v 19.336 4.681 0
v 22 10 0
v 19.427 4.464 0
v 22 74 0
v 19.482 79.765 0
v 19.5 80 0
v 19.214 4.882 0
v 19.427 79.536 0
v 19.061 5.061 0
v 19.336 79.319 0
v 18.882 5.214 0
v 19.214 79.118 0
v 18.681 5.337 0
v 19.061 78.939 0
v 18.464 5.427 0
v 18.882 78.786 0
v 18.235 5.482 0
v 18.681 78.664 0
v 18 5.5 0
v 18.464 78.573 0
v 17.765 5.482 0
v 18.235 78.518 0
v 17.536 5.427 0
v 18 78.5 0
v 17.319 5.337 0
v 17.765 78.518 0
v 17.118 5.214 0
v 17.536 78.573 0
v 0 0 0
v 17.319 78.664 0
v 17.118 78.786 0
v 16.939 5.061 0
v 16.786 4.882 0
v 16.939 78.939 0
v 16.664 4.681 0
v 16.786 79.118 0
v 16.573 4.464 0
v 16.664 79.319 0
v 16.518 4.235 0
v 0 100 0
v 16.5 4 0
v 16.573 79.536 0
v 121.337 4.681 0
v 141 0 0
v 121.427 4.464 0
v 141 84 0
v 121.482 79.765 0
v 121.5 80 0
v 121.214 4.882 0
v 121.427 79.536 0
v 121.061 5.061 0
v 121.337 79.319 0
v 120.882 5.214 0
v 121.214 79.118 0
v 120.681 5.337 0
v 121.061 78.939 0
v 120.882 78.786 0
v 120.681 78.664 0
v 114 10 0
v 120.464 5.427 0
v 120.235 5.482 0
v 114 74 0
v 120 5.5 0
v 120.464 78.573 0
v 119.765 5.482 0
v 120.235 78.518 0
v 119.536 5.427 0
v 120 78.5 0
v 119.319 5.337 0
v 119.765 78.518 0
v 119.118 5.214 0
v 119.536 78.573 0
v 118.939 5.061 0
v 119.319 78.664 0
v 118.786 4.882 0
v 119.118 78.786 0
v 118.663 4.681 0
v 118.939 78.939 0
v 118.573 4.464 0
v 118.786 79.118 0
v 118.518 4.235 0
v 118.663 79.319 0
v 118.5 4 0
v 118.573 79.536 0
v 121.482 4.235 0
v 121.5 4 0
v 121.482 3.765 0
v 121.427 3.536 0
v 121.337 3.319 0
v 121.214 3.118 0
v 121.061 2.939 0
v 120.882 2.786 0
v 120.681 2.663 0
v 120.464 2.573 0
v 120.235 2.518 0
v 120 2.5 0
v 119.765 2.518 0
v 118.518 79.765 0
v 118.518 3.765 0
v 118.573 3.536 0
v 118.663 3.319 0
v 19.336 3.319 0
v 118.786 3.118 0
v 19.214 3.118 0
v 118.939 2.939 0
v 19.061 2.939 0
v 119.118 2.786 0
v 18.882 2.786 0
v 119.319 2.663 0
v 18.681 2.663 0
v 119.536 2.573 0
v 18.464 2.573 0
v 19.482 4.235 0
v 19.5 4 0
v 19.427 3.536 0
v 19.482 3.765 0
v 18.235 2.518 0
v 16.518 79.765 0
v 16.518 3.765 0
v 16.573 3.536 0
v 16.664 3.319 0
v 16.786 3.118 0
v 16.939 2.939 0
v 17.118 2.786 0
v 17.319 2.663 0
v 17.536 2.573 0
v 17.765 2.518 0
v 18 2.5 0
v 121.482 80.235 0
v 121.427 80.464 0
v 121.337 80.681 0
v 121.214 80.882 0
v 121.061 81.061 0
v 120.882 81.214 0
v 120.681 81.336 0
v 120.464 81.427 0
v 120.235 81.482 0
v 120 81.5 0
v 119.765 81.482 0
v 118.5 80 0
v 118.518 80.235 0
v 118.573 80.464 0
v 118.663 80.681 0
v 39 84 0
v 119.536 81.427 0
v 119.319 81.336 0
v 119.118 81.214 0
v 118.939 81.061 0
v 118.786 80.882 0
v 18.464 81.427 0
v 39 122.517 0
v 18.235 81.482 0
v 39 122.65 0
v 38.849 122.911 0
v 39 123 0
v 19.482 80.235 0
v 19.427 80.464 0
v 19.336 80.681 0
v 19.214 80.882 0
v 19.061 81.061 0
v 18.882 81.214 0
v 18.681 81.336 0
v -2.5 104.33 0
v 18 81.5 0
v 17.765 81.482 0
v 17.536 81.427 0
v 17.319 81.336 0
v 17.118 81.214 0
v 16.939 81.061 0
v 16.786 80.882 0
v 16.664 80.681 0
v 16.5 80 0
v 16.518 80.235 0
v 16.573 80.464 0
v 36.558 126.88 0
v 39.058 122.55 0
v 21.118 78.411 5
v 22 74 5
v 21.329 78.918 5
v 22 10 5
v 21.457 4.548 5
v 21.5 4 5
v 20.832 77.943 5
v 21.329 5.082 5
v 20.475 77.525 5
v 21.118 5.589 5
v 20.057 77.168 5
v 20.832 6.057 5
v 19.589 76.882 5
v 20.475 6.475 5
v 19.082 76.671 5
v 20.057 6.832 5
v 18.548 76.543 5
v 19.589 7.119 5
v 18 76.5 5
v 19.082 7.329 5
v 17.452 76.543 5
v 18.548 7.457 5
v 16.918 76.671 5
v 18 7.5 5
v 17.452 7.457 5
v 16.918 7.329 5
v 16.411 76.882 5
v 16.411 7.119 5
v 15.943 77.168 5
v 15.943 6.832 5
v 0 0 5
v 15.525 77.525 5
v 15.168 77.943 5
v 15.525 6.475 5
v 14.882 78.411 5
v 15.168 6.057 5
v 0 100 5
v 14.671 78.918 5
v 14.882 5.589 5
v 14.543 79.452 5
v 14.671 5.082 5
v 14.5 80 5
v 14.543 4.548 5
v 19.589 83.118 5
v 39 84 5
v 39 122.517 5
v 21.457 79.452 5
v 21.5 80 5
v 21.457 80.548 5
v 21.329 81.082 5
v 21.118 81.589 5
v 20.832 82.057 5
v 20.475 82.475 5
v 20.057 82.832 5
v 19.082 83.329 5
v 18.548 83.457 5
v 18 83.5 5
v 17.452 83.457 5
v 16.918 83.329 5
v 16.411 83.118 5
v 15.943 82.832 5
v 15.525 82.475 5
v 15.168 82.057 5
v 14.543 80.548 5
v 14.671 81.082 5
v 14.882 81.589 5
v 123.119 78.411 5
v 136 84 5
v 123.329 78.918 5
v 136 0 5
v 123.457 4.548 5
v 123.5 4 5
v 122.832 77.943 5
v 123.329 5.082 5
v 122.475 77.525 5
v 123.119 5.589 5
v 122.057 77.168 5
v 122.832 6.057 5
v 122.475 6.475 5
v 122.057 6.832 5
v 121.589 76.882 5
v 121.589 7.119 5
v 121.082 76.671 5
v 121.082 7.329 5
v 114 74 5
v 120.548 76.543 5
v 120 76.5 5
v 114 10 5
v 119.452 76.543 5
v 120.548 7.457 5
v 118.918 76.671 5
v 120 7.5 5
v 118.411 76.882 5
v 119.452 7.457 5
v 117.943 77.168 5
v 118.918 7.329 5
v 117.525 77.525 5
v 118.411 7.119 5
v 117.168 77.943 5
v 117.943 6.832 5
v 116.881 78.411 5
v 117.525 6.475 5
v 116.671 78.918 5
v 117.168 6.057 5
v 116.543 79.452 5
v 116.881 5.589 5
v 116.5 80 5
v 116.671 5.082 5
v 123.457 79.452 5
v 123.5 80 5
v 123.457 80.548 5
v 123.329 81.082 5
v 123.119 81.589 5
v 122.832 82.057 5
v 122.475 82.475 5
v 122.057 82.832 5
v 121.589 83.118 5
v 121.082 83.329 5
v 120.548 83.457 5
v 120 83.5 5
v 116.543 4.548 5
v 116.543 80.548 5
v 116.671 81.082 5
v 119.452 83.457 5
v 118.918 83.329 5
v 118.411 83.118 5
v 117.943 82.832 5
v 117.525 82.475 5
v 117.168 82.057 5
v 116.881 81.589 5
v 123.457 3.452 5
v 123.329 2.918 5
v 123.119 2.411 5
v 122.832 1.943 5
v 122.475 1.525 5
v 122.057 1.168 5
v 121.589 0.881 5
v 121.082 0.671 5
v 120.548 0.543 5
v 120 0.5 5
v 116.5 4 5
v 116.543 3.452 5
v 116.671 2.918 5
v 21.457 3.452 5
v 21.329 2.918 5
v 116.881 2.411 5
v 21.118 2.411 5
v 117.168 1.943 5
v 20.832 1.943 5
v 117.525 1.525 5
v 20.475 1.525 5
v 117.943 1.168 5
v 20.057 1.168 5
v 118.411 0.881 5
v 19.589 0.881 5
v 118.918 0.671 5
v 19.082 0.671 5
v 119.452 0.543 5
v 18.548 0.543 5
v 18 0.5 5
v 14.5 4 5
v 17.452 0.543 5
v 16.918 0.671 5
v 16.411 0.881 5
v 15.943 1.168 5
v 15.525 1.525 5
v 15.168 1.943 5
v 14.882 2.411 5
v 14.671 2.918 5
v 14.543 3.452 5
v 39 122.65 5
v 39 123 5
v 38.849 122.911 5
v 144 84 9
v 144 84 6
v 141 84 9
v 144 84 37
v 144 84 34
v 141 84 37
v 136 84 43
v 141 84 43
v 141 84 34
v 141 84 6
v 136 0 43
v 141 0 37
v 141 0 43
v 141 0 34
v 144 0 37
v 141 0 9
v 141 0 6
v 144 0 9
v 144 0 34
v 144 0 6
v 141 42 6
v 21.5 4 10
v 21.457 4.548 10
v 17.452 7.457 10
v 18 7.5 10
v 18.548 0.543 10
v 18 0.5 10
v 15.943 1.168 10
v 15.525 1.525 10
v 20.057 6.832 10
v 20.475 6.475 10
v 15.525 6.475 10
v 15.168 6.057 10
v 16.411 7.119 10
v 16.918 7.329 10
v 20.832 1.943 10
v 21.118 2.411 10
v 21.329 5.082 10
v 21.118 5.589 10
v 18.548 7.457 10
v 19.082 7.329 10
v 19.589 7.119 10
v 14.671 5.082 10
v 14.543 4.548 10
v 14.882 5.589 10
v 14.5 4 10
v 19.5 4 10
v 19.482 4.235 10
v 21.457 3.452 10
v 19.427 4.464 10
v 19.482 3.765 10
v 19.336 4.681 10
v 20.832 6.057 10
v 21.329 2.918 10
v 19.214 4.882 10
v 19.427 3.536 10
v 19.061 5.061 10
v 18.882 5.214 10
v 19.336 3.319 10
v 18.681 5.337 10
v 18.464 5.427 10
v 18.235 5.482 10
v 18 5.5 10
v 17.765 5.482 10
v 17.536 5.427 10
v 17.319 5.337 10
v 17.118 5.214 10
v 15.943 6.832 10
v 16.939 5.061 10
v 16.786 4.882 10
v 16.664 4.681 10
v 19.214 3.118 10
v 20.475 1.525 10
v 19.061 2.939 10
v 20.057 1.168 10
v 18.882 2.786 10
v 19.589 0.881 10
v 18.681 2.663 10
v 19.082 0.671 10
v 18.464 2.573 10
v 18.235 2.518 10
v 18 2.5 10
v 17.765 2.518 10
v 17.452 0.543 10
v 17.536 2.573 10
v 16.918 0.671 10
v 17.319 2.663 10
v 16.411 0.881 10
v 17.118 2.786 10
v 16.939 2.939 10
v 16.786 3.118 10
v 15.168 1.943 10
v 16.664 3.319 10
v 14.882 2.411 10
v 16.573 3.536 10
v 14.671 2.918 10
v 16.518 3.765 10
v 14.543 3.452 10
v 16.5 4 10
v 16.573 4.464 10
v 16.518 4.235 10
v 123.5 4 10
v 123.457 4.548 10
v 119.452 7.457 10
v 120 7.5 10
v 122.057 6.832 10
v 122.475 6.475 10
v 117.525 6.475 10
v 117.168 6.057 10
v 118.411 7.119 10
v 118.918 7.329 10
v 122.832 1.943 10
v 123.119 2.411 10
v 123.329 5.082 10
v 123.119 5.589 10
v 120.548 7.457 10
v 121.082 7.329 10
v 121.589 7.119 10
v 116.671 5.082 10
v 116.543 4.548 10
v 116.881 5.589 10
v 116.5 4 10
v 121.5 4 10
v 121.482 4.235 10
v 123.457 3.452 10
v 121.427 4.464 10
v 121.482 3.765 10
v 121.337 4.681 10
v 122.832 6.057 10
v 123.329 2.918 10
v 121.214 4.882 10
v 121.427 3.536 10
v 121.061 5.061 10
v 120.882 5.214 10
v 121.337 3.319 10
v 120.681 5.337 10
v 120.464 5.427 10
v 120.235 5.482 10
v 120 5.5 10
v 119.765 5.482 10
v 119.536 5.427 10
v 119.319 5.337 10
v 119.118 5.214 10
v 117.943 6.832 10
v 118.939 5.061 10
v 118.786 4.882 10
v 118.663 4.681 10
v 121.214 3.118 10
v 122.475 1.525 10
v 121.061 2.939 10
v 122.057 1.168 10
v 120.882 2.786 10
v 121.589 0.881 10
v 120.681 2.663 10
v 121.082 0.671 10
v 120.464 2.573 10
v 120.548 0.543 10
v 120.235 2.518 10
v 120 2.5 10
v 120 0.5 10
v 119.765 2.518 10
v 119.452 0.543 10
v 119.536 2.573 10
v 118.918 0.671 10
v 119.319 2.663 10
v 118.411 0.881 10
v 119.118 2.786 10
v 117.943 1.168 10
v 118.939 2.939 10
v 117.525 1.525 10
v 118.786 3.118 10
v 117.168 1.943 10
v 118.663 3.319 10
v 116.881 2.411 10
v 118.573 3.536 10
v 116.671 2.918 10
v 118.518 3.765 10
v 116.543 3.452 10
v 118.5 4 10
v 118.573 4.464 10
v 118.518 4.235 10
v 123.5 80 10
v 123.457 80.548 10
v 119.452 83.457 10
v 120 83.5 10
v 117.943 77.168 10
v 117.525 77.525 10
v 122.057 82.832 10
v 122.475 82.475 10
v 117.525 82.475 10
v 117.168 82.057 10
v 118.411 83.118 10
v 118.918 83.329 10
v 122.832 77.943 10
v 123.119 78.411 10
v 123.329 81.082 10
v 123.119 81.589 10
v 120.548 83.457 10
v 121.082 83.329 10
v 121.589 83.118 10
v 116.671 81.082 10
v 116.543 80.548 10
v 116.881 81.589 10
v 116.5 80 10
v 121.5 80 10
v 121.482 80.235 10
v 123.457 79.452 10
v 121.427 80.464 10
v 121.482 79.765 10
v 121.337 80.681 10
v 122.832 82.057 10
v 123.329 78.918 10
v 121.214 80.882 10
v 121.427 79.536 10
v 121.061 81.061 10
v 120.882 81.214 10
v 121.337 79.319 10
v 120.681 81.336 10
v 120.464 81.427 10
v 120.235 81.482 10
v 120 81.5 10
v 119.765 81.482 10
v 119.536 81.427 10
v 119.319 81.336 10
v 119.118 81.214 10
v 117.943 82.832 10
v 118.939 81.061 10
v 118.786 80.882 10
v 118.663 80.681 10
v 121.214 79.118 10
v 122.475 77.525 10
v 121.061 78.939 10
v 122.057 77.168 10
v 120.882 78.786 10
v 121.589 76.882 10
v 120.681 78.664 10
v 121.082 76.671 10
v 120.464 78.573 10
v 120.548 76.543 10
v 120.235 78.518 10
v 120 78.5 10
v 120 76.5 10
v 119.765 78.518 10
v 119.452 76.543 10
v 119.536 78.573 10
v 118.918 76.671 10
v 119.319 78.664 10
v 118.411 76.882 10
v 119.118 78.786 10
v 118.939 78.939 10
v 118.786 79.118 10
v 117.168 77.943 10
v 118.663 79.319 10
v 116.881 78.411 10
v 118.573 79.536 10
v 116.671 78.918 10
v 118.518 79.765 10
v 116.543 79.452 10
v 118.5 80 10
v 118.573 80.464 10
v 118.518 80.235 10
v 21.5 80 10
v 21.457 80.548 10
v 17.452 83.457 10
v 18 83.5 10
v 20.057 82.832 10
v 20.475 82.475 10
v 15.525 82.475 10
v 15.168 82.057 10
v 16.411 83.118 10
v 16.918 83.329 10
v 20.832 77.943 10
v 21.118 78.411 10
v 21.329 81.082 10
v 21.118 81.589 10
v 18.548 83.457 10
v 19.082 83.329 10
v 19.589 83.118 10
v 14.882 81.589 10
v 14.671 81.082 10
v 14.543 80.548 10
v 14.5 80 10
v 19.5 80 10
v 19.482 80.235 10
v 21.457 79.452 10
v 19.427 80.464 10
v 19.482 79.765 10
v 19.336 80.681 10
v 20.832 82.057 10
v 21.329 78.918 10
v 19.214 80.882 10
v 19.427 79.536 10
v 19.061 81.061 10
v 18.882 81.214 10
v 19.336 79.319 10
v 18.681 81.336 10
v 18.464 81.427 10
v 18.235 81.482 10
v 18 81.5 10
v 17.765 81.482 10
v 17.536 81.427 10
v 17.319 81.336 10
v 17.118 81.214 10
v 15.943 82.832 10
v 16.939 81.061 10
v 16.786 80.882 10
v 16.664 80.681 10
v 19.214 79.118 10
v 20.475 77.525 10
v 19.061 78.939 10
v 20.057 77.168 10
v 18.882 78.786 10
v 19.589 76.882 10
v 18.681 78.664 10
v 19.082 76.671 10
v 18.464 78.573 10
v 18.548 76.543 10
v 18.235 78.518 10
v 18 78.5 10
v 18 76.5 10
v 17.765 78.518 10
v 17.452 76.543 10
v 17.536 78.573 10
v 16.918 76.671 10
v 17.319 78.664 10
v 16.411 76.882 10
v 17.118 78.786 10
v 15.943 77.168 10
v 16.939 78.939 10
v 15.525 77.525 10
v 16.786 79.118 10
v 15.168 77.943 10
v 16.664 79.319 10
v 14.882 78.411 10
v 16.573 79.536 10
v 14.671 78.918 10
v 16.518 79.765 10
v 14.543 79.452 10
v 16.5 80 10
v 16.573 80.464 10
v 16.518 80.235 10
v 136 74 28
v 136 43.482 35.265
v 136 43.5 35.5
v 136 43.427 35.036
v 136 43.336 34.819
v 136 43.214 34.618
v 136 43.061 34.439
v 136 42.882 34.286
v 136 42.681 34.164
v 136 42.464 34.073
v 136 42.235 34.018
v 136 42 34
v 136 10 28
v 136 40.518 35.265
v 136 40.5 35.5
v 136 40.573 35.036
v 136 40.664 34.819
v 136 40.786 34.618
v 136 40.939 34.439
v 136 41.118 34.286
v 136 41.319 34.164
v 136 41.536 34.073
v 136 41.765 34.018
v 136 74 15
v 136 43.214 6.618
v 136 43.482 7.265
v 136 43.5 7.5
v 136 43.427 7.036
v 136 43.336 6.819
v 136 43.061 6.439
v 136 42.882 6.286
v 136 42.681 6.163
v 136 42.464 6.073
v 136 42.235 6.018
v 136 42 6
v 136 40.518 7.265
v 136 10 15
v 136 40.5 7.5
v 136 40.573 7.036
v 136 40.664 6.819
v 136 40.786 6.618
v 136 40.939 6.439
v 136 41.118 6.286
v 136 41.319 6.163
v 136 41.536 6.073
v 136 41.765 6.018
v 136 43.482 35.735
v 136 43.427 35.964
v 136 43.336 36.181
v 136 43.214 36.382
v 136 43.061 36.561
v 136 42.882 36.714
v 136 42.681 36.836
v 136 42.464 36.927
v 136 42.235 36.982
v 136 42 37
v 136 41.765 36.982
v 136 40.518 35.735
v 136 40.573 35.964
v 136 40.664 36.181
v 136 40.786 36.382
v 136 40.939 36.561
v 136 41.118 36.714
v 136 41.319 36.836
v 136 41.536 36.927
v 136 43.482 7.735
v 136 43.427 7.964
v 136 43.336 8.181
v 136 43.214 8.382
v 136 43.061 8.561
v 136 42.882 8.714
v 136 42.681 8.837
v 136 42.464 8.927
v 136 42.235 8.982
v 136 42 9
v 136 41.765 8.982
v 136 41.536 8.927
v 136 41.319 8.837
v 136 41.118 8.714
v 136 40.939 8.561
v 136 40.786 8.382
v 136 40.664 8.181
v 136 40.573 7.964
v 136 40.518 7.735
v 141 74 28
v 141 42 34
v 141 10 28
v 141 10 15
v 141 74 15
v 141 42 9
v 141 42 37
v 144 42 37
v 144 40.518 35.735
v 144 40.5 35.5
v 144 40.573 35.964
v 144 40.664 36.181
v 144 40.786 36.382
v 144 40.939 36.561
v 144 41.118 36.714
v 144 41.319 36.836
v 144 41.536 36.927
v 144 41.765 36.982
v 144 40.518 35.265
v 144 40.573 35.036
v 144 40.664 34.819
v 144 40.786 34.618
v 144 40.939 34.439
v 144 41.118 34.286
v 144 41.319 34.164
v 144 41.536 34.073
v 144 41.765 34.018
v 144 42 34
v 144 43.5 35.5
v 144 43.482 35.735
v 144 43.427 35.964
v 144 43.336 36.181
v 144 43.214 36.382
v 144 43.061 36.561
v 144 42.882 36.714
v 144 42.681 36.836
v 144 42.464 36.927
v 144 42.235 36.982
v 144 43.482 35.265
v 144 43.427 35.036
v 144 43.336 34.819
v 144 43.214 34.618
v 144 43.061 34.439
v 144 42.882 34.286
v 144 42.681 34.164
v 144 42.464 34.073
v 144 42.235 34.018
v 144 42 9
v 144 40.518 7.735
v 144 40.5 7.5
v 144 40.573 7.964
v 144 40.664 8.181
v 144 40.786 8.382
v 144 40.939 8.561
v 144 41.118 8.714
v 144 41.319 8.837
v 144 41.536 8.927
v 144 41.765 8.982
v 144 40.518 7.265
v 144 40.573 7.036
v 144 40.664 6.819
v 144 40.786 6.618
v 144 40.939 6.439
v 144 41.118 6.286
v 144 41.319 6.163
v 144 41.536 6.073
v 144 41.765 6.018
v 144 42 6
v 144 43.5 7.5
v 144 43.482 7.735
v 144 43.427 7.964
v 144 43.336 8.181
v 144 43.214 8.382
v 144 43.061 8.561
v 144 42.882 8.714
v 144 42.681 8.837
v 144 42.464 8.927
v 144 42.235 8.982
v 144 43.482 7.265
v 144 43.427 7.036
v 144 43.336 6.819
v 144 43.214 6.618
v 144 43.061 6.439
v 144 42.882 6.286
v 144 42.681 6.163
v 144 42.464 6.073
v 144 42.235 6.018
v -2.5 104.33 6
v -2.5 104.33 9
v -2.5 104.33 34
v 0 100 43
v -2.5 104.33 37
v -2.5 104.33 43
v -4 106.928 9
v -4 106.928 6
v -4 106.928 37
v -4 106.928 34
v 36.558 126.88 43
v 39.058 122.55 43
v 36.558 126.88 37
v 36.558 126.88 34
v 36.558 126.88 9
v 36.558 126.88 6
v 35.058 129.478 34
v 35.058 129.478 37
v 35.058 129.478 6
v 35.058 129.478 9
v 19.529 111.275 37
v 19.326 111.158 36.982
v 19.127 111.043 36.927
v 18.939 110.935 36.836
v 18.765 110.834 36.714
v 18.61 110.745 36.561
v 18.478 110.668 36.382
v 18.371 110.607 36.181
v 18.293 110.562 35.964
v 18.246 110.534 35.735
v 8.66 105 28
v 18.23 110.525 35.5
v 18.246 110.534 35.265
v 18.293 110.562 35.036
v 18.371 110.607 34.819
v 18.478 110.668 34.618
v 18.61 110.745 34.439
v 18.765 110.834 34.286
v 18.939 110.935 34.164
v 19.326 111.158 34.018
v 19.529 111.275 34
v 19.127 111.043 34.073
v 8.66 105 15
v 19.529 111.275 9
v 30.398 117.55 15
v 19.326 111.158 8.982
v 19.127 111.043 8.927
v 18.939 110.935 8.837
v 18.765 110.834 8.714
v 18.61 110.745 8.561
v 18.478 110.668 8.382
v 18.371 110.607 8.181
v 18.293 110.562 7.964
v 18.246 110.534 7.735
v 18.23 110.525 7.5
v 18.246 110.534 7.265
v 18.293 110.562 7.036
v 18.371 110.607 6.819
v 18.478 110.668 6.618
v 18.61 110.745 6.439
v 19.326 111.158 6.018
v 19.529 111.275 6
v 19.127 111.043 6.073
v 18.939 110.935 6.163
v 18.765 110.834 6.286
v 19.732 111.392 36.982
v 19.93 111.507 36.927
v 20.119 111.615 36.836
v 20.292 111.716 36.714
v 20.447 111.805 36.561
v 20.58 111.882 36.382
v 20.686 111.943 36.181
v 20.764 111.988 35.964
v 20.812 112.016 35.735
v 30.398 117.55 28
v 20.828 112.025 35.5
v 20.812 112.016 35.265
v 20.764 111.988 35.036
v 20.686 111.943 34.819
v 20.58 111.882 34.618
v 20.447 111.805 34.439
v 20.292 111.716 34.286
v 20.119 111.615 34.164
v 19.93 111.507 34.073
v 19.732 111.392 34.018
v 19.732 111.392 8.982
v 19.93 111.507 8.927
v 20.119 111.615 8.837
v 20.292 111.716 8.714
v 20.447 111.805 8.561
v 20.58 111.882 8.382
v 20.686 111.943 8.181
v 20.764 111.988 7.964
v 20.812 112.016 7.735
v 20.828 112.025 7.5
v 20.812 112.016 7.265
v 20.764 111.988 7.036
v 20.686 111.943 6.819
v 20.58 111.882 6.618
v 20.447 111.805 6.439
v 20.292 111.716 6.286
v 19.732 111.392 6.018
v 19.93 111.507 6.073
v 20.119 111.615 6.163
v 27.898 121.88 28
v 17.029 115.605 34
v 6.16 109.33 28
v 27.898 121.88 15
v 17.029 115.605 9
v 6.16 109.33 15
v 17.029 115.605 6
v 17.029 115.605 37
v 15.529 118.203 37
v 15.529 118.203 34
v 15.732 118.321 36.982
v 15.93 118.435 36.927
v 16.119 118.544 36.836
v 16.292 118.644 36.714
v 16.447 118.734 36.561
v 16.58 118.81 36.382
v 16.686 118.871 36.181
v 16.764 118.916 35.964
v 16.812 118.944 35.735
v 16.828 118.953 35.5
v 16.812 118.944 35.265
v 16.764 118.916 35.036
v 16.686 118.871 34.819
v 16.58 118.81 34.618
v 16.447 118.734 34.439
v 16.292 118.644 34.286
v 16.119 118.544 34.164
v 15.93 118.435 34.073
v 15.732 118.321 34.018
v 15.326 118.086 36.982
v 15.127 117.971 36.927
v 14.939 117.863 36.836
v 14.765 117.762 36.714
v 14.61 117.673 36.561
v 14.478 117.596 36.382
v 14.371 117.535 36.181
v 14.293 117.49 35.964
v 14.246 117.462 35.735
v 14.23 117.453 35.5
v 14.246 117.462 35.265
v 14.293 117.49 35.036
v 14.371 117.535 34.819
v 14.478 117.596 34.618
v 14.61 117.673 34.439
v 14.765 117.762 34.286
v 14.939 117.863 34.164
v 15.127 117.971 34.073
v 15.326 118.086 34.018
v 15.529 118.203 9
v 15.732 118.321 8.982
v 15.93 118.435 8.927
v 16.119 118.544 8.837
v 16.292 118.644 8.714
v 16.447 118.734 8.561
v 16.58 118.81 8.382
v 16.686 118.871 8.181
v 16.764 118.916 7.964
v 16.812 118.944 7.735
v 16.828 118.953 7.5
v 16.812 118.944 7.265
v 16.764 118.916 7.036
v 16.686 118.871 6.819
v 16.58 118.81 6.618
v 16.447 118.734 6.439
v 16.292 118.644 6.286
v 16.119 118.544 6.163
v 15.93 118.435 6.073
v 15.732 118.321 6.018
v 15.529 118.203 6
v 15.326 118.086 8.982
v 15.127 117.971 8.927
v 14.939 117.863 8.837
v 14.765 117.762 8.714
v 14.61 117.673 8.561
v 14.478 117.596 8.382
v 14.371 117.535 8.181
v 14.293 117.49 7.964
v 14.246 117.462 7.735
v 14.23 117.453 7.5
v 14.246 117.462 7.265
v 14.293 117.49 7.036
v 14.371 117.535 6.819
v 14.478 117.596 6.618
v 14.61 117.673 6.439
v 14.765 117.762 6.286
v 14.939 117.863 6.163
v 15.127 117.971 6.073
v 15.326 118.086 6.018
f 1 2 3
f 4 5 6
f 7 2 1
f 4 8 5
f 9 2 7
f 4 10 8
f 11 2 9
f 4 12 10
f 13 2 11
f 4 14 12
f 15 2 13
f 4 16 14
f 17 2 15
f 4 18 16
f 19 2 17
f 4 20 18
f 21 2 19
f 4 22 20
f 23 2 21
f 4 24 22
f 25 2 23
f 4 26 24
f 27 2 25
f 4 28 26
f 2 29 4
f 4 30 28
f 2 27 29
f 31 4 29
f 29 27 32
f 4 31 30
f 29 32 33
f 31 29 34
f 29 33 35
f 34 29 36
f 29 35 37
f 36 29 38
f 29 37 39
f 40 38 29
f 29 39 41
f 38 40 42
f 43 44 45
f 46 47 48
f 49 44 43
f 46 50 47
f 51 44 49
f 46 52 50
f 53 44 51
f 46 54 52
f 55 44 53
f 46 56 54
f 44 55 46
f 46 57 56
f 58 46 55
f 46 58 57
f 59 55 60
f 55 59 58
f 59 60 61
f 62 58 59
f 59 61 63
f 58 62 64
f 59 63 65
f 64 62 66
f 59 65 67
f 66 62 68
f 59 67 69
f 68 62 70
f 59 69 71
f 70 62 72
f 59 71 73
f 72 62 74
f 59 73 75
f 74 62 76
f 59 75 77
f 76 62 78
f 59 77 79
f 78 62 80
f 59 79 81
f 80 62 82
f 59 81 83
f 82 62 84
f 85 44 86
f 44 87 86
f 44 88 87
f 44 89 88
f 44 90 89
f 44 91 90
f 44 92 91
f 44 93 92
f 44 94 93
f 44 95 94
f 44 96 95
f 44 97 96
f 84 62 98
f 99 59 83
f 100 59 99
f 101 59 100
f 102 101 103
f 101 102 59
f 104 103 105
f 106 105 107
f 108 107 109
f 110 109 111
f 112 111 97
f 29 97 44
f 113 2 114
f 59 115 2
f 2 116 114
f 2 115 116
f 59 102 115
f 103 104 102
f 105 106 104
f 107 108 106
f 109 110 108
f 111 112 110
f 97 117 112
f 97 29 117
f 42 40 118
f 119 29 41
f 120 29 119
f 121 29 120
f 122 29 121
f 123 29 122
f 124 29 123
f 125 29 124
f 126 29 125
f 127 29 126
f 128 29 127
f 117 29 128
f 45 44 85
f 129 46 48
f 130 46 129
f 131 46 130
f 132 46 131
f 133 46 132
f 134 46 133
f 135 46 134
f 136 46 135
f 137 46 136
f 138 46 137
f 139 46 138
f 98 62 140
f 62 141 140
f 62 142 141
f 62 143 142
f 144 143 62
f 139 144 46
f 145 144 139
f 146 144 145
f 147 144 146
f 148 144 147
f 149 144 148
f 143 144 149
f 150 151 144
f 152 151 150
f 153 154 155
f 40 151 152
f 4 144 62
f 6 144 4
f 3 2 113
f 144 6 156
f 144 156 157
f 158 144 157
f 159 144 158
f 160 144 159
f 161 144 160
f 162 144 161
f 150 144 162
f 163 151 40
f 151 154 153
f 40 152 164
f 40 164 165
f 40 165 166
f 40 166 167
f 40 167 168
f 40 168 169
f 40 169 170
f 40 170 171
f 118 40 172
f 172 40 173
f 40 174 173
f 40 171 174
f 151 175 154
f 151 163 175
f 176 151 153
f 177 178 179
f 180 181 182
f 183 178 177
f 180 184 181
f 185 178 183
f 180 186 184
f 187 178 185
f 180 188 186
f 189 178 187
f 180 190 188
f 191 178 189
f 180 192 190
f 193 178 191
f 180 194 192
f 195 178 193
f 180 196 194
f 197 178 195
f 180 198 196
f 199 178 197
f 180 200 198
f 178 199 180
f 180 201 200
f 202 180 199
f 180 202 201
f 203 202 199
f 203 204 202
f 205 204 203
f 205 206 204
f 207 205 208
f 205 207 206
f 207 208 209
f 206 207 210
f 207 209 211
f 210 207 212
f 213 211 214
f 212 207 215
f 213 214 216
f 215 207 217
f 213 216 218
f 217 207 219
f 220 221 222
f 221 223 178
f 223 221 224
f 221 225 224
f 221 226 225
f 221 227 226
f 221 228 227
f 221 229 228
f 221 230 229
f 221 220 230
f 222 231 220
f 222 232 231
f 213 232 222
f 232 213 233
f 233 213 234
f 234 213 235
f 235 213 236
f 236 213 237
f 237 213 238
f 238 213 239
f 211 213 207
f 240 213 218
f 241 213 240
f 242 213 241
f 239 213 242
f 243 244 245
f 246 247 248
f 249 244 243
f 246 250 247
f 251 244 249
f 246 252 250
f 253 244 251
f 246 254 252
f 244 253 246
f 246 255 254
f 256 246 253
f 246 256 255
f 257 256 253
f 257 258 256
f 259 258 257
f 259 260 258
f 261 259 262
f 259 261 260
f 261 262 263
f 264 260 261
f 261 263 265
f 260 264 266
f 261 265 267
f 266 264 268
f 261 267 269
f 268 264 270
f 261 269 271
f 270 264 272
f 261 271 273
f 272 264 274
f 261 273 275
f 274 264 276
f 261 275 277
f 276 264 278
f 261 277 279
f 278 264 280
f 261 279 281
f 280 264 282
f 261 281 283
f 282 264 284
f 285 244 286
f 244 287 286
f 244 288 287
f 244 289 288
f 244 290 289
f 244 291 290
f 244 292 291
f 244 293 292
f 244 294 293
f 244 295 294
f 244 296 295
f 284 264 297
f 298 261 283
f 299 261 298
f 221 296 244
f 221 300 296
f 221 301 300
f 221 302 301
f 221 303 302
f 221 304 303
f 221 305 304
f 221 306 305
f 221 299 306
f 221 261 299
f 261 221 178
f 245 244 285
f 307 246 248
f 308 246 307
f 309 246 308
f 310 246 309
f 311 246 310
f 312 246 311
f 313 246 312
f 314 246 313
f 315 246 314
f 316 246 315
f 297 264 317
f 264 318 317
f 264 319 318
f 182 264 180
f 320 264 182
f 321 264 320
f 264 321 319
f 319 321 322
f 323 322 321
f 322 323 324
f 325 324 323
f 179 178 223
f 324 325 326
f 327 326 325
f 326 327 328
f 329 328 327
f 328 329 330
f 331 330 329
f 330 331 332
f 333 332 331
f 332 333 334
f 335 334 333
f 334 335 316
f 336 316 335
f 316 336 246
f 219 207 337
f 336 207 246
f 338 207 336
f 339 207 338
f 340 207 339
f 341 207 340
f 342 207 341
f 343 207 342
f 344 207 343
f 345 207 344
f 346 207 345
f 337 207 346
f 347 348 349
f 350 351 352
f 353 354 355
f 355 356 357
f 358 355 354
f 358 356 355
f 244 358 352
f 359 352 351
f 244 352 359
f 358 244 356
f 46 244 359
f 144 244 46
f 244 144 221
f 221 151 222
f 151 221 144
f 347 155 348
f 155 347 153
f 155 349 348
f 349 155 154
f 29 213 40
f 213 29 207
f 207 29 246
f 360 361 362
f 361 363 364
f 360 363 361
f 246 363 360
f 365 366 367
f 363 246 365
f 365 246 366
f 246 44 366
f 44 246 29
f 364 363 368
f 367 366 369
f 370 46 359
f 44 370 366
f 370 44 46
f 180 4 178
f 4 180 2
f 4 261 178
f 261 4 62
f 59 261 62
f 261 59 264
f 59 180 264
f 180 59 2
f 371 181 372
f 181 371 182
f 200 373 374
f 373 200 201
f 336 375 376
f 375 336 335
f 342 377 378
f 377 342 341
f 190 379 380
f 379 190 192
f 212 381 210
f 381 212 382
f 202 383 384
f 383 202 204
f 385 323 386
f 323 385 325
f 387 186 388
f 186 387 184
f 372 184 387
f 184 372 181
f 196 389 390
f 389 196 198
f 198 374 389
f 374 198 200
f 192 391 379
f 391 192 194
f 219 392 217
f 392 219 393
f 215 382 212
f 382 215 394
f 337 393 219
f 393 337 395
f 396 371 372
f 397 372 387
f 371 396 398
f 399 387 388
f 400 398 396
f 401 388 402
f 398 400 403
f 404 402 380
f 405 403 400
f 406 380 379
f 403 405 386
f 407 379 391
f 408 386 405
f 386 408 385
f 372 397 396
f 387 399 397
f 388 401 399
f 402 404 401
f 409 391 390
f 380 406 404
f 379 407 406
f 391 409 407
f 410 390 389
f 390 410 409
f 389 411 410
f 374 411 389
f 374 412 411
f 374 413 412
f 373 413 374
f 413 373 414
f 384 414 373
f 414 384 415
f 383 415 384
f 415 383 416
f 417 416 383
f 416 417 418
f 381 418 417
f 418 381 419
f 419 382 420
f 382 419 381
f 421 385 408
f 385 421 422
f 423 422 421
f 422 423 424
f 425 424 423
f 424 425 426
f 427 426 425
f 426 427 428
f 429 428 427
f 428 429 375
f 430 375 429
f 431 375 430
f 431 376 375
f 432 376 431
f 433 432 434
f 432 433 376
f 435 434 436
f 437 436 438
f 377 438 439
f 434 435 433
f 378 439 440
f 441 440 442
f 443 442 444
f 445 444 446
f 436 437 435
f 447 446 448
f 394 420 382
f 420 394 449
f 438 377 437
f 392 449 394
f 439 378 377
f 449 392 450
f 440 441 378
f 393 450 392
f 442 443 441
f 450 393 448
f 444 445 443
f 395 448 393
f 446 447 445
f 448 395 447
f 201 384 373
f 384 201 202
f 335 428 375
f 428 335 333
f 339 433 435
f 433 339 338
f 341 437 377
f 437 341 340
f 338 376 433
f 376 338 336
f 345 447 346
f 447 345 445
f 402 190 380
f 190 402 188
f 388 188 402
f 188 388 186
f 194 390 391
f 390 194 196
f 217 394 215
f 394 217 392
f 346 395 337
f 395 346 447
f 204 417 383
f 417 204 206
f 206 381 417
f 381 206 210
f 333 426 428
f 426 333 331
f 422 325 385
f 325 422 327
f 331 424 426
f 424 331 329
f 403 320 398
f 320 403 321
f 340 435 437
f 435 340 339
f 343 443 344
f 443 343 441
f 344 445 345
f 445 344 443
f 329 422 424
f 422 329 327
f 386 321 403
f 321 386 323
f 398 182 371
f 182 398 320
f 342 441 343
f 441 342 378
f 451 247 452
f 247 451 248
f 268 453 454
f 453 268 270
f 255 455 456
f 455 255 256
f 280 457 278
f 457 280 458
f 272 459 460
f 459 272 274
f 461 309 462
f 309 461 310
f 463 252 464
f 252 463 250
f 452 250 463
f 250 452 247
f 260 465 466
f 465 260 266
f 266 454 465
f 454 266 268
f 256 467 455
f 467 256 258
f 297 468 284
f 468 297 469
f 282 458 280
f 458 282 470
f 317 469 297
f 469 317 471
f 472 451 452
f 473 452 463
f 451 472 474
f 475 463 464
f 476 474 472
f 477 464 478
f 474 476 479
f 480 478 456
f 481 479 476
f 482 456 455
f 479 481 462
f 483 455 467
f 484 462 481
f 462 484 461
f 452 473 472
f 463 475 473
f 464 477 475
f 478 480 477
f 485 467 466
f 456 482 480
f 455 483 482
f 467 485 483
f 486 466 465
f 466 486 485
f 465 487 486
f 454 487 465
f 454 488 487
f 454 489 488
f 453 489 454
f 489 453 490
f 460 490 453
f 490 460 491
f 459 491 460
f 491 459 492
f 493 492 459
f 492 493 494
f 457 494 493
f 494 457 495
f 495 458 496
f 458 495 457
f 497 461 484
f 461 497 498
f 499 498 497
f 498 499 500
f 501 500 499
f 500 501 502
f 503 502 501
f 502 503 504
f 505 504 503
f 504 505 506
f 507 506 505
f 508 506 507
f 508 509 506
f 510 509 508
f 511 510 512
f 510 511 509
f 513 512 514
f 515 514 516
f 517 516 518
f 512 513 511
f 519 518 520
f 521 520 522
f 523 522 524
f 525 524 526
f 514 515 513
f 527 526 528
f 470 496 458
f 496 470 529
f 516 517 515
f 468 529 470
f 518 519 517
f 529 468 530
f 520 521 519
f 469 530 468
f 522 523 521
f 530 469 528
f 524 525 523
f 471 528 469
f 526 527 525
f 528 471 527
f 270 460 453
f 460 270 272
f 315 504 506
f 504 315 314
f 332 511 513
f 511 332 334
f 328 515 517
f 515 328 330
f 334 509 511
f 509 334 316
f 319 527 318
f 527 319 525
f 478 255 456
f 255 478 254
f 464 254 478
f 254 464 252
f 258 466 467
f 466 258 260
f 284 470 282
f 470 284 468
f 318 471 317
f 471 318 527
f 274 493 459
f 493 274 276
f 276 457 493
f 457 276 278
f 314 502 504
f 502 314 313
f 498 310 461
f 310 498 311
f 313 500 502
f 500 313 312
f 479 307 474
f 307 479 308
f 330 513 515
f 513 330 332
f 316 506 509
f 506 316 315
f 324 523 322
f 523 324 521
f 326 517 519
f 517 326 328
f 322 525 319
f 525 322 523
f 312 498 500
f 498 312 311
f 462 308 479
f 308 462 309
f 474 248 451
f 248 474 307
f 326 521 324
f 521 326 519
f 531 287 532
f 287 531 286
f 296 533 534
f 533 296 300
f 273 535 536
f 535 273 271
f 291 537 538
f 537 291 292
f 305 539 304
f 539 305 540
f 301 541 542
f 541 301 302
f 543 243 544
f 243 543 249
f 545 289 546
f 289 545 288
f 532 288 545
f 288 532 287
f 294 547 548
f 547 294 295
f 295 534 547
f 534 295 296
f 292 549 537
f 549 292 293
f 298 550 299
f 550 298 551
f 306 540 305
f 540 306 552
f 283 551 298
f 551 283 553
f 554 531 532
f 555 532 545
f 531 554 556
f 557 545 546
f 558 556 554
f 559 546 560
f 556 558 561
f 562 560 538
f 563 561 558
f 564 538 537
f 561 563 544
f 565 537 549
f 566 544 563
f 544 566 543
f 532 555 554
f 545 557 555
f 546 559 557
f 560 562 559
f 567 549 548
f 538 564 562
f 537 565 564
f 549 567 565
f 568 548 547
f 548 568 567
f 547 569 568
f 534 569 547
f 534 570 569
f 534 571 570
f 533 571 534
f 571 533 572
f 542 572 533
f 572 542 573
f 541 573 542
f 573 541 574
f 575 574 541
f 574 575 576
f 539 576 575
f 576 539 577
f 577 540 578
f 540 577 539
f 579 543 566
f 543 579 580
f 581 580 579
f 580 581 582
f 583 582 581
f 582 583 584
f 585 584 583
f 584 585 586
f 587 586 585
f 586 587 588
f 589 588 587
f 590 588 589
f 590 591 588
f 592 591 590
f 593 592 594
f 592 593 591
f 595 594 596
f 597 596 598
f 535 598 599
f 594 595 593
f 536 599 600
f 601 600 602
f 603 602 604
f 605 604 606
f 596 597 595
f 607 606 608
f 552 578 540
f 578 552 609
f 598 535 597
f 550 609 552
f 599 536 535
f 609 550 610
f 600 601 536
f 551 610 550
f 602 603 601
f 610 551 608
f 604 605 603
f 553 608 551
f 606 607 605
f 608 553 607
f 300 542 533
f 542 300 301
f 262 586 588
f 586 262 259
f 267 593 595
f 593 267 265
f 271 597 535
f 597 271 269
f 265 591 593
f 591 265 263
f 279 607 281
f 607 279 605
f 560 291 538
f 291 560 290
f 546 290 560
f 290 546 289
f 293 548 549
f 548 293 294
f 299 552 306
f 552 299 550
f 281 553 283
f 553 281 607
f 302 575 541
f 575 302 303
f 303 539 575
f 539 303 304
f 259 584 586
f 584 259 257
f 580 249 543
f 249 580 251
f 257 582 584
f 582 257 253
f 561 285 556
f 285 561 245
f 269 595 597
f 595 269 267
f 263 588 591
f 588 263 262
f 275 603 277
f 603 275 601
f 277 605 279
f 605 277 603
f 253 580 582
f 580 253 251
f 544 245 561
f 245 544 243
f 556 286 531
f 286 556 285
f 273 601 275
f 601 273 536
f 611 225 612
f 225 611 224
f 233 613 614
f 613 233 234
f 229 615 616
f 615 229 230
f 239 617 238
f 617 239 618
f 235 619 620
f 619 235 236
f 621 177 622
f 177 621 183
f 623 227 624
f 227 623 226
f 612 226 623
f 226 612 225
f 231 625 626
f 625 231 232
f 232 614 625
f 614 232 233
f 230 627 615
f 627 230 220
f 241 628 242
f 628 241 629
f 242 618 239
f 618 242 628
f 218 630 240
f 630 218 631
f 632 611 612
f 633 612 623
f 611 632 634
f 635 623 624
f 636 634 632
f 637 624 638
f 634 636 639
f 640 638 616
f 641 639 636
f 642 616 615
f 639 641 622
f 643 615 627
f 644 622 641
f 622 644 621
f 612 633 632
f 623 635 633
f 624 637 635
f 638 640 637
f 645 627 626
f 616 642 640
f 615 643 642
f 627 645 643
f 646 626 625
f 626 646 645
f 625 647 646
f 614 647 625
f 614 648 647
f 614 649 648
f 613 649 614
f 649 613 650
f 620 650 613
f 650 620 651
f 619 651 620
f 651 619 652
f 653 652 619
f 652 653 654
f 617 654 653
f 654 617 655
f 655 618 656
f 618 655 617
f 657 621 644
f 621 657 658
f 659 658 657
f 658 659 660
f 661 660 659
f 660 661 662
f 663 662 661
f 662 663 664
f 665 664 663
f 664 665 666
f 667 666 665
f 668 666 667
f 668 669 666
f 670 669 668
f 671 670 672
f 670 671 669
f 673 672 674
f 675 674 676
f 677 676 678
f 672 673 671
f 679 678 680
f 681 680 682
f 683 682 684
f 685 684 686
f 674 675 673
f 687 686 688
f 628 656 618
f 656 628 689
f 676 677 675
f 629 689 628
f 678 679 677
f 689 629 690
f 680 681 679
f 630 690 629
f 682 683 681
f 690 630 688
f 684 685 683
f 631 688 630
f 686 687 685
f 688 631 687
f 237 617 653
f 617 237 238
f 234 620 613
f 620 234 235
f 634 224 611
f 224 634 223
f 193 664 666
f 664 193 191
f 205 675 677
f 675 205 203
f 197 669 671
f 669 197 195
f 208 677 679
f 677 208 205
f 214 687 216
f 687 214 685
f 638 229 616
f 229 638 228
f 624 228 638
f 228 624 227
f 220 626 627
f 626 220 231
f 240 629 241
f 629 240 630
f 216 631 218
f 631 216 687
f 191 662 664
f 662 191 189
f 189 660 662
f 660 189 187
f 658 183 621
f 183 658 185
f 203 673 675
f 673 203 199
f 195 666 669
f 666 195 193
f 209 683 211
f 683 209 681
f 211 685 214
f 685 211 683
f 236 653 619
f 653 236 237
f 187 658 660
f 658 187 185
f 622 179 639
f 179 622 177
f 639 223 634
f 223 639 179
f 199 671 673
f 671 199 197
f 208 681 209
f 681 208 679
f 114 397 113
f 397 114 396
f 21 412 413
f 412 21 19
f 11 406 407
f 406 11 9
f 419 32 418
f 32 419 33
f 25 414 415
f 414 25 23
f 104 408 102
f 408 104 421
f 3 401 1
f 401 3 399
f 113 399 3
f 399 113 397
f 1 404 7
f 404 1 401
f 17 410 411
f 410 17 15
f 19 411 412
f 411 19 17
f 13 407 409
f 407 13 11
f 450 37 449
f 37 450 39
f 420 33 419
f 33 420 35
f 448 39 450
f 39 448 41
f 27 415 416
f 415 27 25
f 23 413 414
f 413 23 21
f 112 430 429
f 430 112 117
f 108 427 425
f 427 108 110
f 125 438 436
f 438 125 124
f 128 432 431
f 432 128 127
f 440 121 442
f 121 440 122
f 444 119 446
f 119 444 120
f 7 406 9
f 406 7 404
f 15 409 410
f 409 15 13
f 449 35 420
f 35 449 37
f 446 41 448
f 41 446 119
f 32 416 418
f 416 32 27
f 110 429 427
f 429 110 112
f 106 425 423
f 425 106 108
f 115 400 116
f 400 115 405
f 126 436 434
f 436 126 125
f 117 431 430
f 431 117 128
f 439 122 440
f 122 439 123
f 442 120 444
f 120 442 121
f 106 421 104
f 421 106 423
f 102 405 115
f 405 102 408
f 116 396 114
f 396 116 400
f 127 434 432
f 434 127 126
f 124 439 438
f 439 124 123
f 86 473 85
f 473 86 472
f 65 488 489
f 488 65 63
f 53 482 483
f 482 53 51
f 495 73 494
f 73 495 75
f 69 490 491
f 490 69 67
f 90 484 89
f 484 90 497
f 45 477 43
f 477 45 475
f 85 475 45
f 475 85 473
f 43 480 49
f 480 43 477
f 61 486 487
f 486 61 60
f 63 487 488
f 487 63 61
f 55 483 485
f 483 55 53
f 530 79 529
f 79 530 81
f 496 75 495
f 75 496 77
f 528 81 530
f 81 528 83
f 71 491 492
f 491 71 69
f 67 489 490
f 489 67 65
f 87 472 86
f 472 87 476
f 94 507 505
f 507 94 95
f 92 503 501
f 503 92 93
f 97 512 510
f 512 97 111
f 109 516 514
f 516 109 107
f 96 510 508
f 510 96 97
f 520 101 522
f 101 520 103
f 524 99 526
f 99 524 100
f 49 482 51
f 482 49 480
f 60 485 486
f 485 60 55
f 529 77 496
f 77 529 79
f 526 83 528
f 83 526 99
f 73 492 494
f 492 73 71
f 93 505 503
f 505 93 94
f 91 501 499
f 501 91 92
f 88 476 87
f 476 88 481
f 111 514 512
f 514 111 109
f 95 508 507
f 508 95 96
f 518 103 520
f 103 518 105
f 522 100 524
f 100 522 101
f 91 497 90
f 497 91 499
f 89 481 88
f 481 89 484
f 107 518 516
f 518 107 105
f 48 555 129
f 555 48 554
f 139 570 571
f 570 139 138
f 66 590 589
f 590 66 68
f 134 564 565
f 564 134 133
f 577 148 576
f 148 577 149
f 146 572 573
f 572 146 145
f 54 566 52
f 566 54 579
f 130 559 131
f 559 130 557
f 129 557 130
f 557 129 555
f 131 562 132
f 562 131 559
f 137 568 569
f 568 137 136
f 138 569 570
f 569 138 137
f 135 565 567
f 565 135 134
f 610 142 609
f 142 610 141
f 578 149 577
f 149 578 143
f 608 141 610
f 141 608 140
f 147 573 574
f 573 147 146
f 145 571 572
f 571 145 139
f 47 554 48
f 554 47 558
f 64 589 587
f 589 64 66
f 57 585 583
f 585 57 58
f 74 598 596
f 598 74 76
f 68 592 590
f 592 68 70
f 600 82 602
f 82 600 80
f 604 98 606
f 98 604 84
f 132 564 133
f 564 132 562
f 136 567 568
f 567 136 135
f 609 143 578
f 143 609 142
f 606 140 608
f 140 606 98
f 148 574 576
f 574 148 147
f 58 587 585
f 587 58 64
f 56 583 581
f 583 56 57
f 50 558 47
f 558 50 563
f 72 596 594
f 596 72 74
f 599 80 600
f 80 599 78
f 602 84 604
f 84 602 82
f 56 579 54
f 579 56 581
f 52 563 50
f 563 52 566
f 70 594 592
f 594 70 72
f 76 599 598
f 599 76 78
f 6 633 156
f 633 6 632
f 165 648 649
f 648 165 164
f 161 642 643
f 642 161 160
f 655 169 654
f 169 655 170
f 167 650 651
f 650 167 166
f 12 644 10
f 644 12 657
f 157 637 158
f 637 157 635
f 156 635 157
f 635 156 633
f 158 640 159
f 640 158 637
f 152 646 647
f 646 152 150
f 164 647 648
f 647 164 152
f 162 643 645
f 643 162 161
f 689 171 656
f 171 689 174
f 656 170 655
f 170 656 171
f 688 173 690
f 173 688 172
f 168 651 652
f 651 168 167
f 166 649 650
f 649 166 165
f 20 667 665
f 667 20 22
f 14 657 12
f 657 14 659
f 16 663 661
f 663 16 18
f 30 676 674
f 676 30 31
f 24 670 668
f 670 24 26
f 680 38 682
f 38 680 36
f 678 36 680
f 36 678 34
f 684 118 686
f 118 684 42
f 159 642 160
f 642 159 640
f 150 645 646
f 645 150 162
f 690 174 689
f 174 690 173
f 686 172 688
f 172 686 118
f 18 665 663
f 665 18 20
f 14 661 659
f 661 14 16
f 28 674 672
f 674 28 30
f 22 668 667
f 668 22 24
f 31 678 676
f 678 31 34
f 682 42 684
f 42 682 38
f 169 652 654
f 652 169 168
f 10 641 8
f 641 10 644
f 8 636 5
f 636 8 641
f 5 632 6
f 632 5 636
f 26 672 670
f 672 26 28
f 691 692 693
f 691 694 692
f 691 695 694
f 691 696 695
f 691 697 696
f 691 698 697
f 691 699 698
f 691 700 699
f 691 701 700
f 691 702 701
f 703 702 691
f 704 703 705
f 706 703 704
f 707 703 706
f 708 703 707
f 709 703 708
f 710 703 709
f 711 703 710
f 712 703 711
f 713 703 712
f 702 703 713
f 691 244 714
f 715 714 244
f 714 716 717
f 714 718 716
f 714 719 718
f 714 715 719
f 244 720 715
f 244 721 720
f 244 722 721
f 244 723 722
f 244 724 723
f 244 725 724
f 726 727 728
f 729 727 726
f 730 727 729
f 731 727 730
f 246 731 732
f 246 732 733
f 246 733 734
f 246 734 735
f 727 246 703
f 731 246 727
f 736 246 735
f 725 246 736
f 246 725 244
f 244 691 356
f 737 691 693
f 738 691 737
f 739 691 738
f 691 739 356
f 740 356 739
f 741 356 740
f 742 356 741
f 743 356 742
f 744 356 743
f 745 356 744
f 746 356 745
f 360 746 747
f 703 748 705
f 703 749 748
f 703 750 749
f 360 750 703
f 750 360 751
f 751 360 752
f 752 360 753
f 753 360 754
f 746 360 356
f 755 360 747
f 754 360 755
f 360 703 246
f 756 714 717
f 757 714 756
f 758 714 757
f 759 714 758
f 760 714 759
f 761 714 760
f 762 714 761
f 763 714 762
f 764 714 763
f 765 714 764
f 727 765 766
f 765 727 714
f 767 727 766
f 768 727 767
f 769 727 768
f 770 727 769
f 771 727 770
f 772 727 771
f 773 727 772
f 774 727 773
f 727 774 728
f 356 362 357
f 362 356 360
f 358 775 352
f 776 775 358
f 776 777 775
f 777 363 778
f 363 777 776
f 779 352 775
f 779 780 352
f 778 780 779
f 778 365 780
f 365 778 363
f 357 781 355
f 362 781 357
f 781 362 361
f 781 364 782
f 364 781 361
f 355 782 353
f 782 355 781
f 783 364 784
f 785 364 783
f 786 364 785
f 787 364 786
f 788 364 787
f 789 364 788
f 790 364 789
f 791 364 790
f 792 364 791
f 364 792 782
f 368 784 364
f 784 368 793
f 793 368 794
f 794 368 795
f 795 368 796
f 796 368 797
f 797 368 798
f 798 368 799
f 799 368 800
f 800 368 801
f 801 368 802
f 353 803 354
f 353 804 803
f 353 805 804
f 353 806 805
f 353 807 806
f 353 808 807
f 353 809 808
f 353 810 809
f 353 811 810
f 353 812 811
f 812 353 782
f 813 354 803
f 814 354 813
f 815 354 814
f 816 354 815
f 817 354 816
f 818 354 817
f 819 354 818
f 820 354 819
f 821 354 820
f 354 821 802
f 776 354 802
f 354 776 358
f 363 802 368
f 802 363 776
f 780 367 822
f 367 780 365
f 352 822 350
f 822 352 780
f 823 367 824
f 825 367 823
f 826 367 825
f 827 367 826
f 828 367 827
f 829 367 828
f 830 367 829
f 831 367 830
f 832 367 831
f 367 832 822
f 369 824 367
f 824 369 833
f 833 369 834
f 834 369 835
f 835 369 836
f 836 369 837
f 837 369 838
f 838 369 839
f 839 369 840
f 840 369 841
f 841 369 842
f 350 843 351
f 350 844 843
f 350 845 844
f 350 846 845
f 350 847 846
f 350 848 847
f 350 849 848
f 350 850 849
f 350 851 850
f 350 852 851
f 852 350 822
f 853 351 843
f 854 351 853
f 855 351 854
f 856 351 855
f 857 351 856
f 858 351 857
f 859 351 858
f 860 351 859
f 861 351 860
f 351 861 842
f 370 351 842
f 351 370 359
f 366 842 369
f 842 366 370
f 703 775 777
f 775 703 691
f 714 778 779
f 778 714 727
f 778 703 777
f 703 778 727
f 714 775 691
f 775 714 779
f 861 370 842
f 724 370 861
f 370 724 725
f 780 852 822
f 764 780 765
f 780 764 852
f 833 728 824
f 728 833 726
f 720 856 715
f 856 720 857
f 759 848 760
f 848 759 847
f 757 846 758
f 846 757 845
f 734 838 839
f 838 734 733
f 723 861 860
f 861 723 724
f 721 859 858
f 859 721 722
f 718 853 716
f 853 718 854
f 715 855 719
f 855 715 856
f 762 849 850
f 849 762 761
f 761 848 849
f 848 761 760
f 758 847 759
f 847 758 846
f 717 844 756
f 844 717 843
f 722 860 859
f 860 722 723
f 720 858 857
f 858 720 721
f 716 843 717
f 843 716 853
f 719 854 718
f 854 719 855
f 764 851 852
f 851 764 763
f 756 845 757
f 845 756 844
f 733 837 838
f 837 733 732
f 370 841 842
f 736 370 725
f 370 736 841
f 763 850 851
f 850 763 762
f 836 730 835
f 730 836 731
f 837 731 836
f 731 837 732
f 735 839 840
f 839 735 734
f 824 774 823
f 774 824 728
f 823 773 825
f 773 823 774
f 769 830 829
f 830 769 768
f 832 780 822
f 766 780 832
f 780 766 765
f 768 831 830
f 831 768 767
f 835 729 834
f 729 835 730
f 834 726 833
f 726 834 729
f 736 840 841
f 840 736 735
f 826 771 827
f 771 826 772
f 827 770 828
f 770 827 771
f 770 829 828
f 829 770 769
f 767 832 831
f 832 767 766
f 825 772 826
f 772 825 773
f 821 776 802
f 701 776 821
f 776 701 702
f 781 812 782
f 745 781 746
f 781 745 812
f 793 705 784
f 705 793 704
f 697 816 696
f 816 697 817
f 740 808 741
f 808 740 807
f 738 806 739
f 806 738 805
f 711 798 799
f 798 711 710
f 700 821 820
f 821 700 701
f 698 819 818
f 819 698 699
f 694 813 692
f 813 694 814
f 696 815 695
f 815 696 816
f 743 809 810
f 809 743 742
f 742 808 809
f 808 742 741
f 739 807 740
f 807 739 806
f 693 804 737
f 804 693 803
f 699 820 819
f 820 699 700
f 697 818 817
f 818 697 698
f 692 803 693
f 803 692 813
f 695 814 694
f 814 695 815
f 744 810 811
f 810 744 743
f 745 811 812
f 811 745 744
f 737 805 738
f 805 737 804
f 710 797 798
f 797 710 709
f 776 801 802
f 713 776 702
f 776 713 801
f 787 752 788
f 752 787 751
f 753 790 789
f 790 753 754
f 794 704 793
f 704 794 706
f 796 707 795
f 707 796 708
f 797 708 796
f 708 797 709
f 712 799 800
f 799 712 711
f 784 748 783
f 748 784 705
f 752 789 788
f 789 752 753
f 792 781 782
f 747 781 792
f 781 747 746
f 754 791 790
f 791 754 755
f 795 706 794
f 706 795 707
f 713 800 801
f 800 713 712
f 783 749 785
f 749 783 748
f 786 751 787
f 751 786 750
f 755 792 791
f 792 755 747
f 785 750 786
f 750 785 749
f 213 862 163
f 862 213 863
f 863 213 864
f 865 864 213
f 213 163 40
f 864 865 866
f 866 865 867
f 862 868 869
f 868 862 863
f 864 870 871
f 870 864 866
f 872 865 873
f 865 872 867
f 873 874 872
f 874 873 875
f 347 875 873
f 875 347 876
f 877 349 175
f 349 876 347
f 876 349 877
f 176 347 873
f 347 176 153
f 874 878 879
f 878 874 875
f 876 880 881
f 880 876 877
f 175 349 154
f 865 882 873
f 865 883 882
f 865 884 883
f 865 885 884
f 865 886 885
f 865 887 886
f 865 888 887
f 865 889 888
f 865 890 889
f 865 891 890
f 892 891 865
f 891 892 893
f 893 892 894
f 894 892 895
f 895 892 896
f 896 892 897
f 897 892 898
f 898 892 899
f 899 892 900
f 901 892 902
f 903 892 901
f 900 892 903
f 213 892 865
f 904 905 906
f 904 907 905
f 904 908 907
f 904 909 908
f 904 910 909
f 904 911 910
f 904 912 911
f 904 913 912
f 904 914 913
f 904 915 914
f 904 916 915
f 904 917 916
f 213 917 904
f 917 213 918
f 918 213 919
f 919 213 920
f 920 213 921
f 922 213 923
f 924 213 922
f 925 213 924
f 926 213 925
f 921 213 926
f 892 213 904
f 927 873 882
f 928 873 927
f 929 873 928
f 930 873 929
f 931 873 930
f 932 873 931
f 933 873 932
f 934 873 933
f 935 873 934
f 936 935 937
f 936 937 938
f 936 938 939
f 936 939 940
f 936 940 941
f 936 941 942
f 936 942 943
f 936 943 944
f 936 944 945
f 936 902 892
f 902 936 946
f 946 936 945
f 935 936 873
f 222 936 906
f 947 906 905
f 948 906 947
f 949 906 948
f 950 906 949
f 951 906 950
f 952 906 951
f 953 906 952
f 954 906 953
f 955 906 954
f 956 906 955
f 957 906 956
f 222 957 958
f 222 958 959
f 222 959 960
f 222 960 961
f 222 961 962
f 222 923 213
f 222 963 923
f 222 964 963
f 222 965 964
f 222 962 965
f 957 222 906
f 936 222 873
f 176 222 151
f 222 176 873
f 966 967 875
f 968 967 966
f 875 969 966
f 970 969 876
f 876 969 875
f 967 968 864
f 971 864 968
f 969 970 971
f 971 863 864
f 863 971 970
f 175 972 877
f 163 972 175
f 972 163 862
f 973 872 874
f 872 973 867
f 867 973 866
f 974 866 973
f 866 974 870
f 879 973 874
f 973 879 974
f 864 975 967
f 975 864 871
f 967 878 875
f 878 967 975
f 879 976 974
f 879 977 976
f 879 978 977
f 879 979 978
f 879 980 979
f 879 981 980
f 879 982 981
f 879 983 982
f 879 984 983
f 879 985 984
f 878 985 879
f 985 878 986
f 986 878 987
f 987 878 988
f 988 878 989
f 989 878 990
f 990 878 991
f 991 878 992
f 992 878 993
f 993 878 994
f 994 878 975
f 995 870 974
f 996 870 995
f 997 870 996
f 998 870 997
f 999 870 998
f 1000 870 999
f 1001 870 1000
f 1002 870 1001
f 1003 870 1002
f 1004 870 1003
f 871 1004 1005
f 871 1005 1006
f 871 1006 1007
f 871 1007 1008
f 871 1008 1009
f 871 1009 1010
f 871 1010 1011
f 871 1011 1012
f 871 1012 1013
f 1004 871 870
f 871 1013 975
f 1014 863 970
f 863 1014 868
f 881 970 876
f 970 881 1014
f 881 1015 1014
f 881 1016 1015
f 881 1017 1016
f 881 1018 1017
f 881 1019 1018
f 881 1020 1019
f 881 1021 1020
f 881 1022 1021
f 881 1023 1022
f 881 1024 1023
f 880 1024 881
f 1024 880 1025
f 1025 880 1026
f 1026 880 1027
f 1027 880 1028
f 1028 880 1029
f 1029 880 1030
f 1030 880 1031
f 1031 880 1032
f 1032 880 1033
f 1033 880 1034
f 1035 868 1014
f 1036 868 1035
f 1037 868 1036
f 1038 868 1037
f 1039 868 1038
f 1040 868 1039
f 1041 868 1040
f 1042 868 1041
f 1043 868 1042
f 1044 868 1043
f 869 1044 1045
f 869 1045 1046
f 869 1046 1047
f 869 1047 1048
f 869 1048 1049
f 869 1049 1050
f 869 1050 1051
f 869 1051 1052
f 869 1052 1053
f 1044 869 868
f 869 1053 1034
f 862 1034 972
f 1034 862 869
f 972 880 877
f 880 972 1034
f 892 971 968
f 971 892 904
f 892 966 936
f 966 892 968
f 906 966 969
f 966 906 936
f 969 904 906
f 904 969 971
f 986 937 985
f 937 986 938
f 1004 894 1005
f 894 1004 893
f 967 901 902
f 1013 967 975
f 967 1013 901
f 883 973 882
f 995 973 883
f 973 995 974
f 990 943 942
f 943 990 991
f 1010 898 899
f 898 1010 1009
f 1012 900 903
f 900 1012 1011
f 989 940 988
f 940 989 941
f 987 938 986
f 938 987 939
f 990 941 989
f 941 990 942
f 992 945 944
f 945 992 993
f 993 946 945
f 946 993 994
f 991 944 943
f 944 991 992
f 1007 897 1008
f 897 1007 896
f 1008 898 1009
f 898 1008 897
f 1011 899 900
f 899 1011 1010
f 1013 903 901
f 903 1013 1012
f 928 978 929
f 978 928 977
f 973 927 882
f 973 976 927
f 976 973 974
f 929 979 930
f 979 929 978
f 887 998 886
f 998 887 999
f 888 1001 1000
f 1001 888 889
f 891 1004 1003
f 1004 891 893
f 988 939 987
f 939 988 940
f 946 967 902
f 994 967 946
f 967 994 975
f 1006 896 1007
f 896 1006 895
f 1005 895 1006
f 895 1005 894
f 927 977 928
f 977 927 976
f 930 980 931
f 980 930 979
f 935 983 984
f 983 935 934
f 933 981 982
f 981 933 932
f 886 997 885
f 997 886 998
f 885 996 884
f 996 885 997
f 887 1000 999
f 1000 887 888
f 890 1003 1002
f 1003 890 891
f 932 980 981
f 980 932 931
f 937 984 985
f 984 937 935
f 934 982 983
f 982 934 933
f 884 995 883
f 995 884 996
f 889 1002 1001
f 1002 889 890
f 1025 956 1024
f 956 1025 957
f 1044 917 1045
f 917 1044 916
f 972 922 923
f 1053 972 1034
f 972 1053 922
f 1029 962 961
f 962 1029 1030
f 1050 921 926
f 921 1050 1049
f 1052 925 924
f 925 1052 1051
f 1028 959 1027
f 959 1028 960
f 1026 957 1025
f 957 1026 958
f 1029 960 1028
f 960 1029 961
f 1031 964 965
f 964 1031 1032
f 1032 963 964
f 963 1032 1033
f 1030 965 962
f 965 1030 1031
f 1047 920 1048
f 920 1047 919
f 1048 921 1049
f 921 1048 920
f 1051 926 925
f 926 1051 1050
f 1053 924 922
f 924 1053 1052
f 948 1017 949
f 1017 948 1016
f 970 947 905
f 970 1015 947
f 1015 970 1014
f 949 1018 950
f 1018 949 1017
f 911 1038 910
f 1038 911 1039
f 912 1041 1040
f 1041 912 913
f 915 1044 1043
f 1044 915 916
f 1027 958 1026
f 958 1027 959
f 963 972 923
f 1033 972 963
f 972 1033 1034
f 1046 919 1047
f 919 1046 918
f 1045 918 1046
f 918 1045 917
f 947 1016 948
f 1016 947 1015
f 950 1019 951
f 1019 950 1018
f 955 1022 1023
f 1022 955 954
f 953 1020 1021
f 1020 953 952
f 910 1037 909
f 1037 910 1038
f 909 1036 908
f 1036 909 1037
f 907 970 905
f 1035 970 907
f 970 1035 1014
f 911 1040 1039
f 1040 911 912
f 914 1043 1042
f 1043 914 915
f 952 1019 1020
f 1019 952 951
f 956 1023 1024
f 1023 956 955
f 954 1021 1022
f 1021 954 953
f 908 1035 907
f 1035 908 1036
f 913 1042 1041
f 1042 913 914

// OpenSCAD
m3_rad = 3 / 2;
mount_hole_hor_dist = 102;
mount_hole_vert_dist = 76;
$fn = 40;
thickness = 5;
ril_dim = 3;
alu_height = 15;
lip_height = alu_height + 13 + alu_height;
backlip_width = 45.1;
controller_height = 84;
controller_width = 110;
vert_border = 15;
border = 10;
backlip_angle = 30;
base_x = 18;
base_y = 4;

difference()
{
    union()
    {
        linear_extrude(height = thickness)
        {
            difference()
            {
                // outline.
                polygon(
                    points = [
                        [0, 0],
                        [0, 100],
                        [39, 123],
                        [39, 84],
                        [141, 84],
                        [141, 0],
                        [0, 0]
                        ]);
                
                // Ventilation cut-out.
                polygon(
                    points = [
                        [22, 10],
                        [22, 74],
                        [114, 74],
                        [114, 10],
                        [22, 10]
                        ]);
                  
            }
            
        }
            
        // Mounting holes.
        translate([base_x, base_y, 0])
        {
            cylinder(h = thickness + thickness, r = m3_rad+2);
        }
        translate([base_x + mount_hole_hor_dist, base_y, 0])
        {
            cylinder(h = thickness + thickness, r = m3_rad+2);
        }
        translate([base_x + mount_hole_hor_dist, base_y+ mount_hole_vert_dist, 0])
        {
            cylinder(h = thickness + thickness, r = m3_rad+2);
        }
        translate([base_x, base_y + mount_hole_vert_dist, 0])
        {
            cylinder(h = thickness + thickness, r = m3_rad+2);
        }
    }
    
    // All-through screw holes.
    translate([base_x, base_y, 0])
    {
        cylinder(h = thickness + thickness, r = m3_rad);
    }
    translate([base_x + mount_hole_hor_dist, base_y, 0])
    {
        cylinder(h = thickness + thickness, r = m3_rad);
    }
    translate([base_x + mount_hole_hor_dist, base_y+ mount_hole_vert_dist, 0])
    {
        cylinder(h = thickness + thickness, r = m3_rad);
    }
    translate([base_x, base_y + mount_hole_vert_dist, 0])
    {
        cylinder(h = thickness + thickness, r = m3_rad);
    }
}

// Lip to right of bracket.
difference()
{
    translate([141 - thickness, 0, 0])
    {
        union()
        {
            cube(size = [thickness, controller_height, lip_height]);
            // top ril.
            translate([thickness, 0, lip_height - (alu_height / 2) - (ril_dim / 2)])
            {
                cube(size = [ril_dim, controller_height, ril_dim]);
            }
            // bottom ril.
            translate([thickness, 0, (alu_height / 2) - (ril_dim / 2)])
            {
                cube(size = [ril_dim, controller_height, ril_dim]);
            }
        }
    }
    
    translate([141 - thickness, border, vert_border])
    {
        union()
        {
            cube(size = [thickness, controller_height - border - border, lip_height - vert_border - vert_border]);
            translate([thickness, 0, lip_height - (alu_height / 2) - (ril_dim / 2)])
            {
                cube(size = [ril_dim, controller_height, ril_dim]);
            }
        }
    }
    
    // 15x15 alu screw hole lowest.
    translate([141 - thickness, controller_height / 2, alu_height / 2])
    {
        rotate(a = [0, 90, 0])
        {
            cylinder(h = thickness + ril_dim, r = m3_rad);
        }
    }

    // 15x15 alu screw hole highest.
    translate([141 - thickness, controller_height / 2, lip_height - (alu_height / 2)])
    {
        rotate(a = [0, 90, 0])
        {
            cylinder(h = thickness + ril_dim, r = m3_rad);
        }
    }

}

// Lip to top-end of bracket.
translate([0, 100, 0])
{
    rotate(a = [0, 0, backlip_angle])
    {
        difference()
        {
            union()
            {
                cube(size = [backlip_width, thickness, lip_height]);

                // top ril.
                translate([0, thickness, lip_height - (alu_height / 2) - (ril_dim / 2)])
                {
                    cube(size = [backlip_width, ril_dim, ril_dim]);
                }
                // bottom ril.
                translate([0, thickness, (alu_height / 2) - (ril_dim / 2)])
                {
                    cube(size = [backlip_width, ril_dim, ril_dim]);
                }
            }
            
            // Cut-out.
            translate([border, 0, vert_border])
            {
                cube(size = [backlip_width - border - border, thickness, lip_height - vert_border - vert_border]);
                    
            }
            
            // 15x15 alu screw hole highest.
            translate([backlip_width / 2, 0, lip_height - (alu_height / 2)])
            {
                rotate(a = [-90, 0, 0])
                {
                    cylinder(h = thickness + ril_dim, r = m3_rad);
                }
            }
            
            // 15x15 alu screw hole lowest.
            translate([backlip_width / 2, 0, alu_height / 2])
            {
                rotate(a = [-90, 0, 0])
                {
                    cylinder(h = thickness + ril_dim, r = m3_rad);
                }
            }
        }
    }

}
